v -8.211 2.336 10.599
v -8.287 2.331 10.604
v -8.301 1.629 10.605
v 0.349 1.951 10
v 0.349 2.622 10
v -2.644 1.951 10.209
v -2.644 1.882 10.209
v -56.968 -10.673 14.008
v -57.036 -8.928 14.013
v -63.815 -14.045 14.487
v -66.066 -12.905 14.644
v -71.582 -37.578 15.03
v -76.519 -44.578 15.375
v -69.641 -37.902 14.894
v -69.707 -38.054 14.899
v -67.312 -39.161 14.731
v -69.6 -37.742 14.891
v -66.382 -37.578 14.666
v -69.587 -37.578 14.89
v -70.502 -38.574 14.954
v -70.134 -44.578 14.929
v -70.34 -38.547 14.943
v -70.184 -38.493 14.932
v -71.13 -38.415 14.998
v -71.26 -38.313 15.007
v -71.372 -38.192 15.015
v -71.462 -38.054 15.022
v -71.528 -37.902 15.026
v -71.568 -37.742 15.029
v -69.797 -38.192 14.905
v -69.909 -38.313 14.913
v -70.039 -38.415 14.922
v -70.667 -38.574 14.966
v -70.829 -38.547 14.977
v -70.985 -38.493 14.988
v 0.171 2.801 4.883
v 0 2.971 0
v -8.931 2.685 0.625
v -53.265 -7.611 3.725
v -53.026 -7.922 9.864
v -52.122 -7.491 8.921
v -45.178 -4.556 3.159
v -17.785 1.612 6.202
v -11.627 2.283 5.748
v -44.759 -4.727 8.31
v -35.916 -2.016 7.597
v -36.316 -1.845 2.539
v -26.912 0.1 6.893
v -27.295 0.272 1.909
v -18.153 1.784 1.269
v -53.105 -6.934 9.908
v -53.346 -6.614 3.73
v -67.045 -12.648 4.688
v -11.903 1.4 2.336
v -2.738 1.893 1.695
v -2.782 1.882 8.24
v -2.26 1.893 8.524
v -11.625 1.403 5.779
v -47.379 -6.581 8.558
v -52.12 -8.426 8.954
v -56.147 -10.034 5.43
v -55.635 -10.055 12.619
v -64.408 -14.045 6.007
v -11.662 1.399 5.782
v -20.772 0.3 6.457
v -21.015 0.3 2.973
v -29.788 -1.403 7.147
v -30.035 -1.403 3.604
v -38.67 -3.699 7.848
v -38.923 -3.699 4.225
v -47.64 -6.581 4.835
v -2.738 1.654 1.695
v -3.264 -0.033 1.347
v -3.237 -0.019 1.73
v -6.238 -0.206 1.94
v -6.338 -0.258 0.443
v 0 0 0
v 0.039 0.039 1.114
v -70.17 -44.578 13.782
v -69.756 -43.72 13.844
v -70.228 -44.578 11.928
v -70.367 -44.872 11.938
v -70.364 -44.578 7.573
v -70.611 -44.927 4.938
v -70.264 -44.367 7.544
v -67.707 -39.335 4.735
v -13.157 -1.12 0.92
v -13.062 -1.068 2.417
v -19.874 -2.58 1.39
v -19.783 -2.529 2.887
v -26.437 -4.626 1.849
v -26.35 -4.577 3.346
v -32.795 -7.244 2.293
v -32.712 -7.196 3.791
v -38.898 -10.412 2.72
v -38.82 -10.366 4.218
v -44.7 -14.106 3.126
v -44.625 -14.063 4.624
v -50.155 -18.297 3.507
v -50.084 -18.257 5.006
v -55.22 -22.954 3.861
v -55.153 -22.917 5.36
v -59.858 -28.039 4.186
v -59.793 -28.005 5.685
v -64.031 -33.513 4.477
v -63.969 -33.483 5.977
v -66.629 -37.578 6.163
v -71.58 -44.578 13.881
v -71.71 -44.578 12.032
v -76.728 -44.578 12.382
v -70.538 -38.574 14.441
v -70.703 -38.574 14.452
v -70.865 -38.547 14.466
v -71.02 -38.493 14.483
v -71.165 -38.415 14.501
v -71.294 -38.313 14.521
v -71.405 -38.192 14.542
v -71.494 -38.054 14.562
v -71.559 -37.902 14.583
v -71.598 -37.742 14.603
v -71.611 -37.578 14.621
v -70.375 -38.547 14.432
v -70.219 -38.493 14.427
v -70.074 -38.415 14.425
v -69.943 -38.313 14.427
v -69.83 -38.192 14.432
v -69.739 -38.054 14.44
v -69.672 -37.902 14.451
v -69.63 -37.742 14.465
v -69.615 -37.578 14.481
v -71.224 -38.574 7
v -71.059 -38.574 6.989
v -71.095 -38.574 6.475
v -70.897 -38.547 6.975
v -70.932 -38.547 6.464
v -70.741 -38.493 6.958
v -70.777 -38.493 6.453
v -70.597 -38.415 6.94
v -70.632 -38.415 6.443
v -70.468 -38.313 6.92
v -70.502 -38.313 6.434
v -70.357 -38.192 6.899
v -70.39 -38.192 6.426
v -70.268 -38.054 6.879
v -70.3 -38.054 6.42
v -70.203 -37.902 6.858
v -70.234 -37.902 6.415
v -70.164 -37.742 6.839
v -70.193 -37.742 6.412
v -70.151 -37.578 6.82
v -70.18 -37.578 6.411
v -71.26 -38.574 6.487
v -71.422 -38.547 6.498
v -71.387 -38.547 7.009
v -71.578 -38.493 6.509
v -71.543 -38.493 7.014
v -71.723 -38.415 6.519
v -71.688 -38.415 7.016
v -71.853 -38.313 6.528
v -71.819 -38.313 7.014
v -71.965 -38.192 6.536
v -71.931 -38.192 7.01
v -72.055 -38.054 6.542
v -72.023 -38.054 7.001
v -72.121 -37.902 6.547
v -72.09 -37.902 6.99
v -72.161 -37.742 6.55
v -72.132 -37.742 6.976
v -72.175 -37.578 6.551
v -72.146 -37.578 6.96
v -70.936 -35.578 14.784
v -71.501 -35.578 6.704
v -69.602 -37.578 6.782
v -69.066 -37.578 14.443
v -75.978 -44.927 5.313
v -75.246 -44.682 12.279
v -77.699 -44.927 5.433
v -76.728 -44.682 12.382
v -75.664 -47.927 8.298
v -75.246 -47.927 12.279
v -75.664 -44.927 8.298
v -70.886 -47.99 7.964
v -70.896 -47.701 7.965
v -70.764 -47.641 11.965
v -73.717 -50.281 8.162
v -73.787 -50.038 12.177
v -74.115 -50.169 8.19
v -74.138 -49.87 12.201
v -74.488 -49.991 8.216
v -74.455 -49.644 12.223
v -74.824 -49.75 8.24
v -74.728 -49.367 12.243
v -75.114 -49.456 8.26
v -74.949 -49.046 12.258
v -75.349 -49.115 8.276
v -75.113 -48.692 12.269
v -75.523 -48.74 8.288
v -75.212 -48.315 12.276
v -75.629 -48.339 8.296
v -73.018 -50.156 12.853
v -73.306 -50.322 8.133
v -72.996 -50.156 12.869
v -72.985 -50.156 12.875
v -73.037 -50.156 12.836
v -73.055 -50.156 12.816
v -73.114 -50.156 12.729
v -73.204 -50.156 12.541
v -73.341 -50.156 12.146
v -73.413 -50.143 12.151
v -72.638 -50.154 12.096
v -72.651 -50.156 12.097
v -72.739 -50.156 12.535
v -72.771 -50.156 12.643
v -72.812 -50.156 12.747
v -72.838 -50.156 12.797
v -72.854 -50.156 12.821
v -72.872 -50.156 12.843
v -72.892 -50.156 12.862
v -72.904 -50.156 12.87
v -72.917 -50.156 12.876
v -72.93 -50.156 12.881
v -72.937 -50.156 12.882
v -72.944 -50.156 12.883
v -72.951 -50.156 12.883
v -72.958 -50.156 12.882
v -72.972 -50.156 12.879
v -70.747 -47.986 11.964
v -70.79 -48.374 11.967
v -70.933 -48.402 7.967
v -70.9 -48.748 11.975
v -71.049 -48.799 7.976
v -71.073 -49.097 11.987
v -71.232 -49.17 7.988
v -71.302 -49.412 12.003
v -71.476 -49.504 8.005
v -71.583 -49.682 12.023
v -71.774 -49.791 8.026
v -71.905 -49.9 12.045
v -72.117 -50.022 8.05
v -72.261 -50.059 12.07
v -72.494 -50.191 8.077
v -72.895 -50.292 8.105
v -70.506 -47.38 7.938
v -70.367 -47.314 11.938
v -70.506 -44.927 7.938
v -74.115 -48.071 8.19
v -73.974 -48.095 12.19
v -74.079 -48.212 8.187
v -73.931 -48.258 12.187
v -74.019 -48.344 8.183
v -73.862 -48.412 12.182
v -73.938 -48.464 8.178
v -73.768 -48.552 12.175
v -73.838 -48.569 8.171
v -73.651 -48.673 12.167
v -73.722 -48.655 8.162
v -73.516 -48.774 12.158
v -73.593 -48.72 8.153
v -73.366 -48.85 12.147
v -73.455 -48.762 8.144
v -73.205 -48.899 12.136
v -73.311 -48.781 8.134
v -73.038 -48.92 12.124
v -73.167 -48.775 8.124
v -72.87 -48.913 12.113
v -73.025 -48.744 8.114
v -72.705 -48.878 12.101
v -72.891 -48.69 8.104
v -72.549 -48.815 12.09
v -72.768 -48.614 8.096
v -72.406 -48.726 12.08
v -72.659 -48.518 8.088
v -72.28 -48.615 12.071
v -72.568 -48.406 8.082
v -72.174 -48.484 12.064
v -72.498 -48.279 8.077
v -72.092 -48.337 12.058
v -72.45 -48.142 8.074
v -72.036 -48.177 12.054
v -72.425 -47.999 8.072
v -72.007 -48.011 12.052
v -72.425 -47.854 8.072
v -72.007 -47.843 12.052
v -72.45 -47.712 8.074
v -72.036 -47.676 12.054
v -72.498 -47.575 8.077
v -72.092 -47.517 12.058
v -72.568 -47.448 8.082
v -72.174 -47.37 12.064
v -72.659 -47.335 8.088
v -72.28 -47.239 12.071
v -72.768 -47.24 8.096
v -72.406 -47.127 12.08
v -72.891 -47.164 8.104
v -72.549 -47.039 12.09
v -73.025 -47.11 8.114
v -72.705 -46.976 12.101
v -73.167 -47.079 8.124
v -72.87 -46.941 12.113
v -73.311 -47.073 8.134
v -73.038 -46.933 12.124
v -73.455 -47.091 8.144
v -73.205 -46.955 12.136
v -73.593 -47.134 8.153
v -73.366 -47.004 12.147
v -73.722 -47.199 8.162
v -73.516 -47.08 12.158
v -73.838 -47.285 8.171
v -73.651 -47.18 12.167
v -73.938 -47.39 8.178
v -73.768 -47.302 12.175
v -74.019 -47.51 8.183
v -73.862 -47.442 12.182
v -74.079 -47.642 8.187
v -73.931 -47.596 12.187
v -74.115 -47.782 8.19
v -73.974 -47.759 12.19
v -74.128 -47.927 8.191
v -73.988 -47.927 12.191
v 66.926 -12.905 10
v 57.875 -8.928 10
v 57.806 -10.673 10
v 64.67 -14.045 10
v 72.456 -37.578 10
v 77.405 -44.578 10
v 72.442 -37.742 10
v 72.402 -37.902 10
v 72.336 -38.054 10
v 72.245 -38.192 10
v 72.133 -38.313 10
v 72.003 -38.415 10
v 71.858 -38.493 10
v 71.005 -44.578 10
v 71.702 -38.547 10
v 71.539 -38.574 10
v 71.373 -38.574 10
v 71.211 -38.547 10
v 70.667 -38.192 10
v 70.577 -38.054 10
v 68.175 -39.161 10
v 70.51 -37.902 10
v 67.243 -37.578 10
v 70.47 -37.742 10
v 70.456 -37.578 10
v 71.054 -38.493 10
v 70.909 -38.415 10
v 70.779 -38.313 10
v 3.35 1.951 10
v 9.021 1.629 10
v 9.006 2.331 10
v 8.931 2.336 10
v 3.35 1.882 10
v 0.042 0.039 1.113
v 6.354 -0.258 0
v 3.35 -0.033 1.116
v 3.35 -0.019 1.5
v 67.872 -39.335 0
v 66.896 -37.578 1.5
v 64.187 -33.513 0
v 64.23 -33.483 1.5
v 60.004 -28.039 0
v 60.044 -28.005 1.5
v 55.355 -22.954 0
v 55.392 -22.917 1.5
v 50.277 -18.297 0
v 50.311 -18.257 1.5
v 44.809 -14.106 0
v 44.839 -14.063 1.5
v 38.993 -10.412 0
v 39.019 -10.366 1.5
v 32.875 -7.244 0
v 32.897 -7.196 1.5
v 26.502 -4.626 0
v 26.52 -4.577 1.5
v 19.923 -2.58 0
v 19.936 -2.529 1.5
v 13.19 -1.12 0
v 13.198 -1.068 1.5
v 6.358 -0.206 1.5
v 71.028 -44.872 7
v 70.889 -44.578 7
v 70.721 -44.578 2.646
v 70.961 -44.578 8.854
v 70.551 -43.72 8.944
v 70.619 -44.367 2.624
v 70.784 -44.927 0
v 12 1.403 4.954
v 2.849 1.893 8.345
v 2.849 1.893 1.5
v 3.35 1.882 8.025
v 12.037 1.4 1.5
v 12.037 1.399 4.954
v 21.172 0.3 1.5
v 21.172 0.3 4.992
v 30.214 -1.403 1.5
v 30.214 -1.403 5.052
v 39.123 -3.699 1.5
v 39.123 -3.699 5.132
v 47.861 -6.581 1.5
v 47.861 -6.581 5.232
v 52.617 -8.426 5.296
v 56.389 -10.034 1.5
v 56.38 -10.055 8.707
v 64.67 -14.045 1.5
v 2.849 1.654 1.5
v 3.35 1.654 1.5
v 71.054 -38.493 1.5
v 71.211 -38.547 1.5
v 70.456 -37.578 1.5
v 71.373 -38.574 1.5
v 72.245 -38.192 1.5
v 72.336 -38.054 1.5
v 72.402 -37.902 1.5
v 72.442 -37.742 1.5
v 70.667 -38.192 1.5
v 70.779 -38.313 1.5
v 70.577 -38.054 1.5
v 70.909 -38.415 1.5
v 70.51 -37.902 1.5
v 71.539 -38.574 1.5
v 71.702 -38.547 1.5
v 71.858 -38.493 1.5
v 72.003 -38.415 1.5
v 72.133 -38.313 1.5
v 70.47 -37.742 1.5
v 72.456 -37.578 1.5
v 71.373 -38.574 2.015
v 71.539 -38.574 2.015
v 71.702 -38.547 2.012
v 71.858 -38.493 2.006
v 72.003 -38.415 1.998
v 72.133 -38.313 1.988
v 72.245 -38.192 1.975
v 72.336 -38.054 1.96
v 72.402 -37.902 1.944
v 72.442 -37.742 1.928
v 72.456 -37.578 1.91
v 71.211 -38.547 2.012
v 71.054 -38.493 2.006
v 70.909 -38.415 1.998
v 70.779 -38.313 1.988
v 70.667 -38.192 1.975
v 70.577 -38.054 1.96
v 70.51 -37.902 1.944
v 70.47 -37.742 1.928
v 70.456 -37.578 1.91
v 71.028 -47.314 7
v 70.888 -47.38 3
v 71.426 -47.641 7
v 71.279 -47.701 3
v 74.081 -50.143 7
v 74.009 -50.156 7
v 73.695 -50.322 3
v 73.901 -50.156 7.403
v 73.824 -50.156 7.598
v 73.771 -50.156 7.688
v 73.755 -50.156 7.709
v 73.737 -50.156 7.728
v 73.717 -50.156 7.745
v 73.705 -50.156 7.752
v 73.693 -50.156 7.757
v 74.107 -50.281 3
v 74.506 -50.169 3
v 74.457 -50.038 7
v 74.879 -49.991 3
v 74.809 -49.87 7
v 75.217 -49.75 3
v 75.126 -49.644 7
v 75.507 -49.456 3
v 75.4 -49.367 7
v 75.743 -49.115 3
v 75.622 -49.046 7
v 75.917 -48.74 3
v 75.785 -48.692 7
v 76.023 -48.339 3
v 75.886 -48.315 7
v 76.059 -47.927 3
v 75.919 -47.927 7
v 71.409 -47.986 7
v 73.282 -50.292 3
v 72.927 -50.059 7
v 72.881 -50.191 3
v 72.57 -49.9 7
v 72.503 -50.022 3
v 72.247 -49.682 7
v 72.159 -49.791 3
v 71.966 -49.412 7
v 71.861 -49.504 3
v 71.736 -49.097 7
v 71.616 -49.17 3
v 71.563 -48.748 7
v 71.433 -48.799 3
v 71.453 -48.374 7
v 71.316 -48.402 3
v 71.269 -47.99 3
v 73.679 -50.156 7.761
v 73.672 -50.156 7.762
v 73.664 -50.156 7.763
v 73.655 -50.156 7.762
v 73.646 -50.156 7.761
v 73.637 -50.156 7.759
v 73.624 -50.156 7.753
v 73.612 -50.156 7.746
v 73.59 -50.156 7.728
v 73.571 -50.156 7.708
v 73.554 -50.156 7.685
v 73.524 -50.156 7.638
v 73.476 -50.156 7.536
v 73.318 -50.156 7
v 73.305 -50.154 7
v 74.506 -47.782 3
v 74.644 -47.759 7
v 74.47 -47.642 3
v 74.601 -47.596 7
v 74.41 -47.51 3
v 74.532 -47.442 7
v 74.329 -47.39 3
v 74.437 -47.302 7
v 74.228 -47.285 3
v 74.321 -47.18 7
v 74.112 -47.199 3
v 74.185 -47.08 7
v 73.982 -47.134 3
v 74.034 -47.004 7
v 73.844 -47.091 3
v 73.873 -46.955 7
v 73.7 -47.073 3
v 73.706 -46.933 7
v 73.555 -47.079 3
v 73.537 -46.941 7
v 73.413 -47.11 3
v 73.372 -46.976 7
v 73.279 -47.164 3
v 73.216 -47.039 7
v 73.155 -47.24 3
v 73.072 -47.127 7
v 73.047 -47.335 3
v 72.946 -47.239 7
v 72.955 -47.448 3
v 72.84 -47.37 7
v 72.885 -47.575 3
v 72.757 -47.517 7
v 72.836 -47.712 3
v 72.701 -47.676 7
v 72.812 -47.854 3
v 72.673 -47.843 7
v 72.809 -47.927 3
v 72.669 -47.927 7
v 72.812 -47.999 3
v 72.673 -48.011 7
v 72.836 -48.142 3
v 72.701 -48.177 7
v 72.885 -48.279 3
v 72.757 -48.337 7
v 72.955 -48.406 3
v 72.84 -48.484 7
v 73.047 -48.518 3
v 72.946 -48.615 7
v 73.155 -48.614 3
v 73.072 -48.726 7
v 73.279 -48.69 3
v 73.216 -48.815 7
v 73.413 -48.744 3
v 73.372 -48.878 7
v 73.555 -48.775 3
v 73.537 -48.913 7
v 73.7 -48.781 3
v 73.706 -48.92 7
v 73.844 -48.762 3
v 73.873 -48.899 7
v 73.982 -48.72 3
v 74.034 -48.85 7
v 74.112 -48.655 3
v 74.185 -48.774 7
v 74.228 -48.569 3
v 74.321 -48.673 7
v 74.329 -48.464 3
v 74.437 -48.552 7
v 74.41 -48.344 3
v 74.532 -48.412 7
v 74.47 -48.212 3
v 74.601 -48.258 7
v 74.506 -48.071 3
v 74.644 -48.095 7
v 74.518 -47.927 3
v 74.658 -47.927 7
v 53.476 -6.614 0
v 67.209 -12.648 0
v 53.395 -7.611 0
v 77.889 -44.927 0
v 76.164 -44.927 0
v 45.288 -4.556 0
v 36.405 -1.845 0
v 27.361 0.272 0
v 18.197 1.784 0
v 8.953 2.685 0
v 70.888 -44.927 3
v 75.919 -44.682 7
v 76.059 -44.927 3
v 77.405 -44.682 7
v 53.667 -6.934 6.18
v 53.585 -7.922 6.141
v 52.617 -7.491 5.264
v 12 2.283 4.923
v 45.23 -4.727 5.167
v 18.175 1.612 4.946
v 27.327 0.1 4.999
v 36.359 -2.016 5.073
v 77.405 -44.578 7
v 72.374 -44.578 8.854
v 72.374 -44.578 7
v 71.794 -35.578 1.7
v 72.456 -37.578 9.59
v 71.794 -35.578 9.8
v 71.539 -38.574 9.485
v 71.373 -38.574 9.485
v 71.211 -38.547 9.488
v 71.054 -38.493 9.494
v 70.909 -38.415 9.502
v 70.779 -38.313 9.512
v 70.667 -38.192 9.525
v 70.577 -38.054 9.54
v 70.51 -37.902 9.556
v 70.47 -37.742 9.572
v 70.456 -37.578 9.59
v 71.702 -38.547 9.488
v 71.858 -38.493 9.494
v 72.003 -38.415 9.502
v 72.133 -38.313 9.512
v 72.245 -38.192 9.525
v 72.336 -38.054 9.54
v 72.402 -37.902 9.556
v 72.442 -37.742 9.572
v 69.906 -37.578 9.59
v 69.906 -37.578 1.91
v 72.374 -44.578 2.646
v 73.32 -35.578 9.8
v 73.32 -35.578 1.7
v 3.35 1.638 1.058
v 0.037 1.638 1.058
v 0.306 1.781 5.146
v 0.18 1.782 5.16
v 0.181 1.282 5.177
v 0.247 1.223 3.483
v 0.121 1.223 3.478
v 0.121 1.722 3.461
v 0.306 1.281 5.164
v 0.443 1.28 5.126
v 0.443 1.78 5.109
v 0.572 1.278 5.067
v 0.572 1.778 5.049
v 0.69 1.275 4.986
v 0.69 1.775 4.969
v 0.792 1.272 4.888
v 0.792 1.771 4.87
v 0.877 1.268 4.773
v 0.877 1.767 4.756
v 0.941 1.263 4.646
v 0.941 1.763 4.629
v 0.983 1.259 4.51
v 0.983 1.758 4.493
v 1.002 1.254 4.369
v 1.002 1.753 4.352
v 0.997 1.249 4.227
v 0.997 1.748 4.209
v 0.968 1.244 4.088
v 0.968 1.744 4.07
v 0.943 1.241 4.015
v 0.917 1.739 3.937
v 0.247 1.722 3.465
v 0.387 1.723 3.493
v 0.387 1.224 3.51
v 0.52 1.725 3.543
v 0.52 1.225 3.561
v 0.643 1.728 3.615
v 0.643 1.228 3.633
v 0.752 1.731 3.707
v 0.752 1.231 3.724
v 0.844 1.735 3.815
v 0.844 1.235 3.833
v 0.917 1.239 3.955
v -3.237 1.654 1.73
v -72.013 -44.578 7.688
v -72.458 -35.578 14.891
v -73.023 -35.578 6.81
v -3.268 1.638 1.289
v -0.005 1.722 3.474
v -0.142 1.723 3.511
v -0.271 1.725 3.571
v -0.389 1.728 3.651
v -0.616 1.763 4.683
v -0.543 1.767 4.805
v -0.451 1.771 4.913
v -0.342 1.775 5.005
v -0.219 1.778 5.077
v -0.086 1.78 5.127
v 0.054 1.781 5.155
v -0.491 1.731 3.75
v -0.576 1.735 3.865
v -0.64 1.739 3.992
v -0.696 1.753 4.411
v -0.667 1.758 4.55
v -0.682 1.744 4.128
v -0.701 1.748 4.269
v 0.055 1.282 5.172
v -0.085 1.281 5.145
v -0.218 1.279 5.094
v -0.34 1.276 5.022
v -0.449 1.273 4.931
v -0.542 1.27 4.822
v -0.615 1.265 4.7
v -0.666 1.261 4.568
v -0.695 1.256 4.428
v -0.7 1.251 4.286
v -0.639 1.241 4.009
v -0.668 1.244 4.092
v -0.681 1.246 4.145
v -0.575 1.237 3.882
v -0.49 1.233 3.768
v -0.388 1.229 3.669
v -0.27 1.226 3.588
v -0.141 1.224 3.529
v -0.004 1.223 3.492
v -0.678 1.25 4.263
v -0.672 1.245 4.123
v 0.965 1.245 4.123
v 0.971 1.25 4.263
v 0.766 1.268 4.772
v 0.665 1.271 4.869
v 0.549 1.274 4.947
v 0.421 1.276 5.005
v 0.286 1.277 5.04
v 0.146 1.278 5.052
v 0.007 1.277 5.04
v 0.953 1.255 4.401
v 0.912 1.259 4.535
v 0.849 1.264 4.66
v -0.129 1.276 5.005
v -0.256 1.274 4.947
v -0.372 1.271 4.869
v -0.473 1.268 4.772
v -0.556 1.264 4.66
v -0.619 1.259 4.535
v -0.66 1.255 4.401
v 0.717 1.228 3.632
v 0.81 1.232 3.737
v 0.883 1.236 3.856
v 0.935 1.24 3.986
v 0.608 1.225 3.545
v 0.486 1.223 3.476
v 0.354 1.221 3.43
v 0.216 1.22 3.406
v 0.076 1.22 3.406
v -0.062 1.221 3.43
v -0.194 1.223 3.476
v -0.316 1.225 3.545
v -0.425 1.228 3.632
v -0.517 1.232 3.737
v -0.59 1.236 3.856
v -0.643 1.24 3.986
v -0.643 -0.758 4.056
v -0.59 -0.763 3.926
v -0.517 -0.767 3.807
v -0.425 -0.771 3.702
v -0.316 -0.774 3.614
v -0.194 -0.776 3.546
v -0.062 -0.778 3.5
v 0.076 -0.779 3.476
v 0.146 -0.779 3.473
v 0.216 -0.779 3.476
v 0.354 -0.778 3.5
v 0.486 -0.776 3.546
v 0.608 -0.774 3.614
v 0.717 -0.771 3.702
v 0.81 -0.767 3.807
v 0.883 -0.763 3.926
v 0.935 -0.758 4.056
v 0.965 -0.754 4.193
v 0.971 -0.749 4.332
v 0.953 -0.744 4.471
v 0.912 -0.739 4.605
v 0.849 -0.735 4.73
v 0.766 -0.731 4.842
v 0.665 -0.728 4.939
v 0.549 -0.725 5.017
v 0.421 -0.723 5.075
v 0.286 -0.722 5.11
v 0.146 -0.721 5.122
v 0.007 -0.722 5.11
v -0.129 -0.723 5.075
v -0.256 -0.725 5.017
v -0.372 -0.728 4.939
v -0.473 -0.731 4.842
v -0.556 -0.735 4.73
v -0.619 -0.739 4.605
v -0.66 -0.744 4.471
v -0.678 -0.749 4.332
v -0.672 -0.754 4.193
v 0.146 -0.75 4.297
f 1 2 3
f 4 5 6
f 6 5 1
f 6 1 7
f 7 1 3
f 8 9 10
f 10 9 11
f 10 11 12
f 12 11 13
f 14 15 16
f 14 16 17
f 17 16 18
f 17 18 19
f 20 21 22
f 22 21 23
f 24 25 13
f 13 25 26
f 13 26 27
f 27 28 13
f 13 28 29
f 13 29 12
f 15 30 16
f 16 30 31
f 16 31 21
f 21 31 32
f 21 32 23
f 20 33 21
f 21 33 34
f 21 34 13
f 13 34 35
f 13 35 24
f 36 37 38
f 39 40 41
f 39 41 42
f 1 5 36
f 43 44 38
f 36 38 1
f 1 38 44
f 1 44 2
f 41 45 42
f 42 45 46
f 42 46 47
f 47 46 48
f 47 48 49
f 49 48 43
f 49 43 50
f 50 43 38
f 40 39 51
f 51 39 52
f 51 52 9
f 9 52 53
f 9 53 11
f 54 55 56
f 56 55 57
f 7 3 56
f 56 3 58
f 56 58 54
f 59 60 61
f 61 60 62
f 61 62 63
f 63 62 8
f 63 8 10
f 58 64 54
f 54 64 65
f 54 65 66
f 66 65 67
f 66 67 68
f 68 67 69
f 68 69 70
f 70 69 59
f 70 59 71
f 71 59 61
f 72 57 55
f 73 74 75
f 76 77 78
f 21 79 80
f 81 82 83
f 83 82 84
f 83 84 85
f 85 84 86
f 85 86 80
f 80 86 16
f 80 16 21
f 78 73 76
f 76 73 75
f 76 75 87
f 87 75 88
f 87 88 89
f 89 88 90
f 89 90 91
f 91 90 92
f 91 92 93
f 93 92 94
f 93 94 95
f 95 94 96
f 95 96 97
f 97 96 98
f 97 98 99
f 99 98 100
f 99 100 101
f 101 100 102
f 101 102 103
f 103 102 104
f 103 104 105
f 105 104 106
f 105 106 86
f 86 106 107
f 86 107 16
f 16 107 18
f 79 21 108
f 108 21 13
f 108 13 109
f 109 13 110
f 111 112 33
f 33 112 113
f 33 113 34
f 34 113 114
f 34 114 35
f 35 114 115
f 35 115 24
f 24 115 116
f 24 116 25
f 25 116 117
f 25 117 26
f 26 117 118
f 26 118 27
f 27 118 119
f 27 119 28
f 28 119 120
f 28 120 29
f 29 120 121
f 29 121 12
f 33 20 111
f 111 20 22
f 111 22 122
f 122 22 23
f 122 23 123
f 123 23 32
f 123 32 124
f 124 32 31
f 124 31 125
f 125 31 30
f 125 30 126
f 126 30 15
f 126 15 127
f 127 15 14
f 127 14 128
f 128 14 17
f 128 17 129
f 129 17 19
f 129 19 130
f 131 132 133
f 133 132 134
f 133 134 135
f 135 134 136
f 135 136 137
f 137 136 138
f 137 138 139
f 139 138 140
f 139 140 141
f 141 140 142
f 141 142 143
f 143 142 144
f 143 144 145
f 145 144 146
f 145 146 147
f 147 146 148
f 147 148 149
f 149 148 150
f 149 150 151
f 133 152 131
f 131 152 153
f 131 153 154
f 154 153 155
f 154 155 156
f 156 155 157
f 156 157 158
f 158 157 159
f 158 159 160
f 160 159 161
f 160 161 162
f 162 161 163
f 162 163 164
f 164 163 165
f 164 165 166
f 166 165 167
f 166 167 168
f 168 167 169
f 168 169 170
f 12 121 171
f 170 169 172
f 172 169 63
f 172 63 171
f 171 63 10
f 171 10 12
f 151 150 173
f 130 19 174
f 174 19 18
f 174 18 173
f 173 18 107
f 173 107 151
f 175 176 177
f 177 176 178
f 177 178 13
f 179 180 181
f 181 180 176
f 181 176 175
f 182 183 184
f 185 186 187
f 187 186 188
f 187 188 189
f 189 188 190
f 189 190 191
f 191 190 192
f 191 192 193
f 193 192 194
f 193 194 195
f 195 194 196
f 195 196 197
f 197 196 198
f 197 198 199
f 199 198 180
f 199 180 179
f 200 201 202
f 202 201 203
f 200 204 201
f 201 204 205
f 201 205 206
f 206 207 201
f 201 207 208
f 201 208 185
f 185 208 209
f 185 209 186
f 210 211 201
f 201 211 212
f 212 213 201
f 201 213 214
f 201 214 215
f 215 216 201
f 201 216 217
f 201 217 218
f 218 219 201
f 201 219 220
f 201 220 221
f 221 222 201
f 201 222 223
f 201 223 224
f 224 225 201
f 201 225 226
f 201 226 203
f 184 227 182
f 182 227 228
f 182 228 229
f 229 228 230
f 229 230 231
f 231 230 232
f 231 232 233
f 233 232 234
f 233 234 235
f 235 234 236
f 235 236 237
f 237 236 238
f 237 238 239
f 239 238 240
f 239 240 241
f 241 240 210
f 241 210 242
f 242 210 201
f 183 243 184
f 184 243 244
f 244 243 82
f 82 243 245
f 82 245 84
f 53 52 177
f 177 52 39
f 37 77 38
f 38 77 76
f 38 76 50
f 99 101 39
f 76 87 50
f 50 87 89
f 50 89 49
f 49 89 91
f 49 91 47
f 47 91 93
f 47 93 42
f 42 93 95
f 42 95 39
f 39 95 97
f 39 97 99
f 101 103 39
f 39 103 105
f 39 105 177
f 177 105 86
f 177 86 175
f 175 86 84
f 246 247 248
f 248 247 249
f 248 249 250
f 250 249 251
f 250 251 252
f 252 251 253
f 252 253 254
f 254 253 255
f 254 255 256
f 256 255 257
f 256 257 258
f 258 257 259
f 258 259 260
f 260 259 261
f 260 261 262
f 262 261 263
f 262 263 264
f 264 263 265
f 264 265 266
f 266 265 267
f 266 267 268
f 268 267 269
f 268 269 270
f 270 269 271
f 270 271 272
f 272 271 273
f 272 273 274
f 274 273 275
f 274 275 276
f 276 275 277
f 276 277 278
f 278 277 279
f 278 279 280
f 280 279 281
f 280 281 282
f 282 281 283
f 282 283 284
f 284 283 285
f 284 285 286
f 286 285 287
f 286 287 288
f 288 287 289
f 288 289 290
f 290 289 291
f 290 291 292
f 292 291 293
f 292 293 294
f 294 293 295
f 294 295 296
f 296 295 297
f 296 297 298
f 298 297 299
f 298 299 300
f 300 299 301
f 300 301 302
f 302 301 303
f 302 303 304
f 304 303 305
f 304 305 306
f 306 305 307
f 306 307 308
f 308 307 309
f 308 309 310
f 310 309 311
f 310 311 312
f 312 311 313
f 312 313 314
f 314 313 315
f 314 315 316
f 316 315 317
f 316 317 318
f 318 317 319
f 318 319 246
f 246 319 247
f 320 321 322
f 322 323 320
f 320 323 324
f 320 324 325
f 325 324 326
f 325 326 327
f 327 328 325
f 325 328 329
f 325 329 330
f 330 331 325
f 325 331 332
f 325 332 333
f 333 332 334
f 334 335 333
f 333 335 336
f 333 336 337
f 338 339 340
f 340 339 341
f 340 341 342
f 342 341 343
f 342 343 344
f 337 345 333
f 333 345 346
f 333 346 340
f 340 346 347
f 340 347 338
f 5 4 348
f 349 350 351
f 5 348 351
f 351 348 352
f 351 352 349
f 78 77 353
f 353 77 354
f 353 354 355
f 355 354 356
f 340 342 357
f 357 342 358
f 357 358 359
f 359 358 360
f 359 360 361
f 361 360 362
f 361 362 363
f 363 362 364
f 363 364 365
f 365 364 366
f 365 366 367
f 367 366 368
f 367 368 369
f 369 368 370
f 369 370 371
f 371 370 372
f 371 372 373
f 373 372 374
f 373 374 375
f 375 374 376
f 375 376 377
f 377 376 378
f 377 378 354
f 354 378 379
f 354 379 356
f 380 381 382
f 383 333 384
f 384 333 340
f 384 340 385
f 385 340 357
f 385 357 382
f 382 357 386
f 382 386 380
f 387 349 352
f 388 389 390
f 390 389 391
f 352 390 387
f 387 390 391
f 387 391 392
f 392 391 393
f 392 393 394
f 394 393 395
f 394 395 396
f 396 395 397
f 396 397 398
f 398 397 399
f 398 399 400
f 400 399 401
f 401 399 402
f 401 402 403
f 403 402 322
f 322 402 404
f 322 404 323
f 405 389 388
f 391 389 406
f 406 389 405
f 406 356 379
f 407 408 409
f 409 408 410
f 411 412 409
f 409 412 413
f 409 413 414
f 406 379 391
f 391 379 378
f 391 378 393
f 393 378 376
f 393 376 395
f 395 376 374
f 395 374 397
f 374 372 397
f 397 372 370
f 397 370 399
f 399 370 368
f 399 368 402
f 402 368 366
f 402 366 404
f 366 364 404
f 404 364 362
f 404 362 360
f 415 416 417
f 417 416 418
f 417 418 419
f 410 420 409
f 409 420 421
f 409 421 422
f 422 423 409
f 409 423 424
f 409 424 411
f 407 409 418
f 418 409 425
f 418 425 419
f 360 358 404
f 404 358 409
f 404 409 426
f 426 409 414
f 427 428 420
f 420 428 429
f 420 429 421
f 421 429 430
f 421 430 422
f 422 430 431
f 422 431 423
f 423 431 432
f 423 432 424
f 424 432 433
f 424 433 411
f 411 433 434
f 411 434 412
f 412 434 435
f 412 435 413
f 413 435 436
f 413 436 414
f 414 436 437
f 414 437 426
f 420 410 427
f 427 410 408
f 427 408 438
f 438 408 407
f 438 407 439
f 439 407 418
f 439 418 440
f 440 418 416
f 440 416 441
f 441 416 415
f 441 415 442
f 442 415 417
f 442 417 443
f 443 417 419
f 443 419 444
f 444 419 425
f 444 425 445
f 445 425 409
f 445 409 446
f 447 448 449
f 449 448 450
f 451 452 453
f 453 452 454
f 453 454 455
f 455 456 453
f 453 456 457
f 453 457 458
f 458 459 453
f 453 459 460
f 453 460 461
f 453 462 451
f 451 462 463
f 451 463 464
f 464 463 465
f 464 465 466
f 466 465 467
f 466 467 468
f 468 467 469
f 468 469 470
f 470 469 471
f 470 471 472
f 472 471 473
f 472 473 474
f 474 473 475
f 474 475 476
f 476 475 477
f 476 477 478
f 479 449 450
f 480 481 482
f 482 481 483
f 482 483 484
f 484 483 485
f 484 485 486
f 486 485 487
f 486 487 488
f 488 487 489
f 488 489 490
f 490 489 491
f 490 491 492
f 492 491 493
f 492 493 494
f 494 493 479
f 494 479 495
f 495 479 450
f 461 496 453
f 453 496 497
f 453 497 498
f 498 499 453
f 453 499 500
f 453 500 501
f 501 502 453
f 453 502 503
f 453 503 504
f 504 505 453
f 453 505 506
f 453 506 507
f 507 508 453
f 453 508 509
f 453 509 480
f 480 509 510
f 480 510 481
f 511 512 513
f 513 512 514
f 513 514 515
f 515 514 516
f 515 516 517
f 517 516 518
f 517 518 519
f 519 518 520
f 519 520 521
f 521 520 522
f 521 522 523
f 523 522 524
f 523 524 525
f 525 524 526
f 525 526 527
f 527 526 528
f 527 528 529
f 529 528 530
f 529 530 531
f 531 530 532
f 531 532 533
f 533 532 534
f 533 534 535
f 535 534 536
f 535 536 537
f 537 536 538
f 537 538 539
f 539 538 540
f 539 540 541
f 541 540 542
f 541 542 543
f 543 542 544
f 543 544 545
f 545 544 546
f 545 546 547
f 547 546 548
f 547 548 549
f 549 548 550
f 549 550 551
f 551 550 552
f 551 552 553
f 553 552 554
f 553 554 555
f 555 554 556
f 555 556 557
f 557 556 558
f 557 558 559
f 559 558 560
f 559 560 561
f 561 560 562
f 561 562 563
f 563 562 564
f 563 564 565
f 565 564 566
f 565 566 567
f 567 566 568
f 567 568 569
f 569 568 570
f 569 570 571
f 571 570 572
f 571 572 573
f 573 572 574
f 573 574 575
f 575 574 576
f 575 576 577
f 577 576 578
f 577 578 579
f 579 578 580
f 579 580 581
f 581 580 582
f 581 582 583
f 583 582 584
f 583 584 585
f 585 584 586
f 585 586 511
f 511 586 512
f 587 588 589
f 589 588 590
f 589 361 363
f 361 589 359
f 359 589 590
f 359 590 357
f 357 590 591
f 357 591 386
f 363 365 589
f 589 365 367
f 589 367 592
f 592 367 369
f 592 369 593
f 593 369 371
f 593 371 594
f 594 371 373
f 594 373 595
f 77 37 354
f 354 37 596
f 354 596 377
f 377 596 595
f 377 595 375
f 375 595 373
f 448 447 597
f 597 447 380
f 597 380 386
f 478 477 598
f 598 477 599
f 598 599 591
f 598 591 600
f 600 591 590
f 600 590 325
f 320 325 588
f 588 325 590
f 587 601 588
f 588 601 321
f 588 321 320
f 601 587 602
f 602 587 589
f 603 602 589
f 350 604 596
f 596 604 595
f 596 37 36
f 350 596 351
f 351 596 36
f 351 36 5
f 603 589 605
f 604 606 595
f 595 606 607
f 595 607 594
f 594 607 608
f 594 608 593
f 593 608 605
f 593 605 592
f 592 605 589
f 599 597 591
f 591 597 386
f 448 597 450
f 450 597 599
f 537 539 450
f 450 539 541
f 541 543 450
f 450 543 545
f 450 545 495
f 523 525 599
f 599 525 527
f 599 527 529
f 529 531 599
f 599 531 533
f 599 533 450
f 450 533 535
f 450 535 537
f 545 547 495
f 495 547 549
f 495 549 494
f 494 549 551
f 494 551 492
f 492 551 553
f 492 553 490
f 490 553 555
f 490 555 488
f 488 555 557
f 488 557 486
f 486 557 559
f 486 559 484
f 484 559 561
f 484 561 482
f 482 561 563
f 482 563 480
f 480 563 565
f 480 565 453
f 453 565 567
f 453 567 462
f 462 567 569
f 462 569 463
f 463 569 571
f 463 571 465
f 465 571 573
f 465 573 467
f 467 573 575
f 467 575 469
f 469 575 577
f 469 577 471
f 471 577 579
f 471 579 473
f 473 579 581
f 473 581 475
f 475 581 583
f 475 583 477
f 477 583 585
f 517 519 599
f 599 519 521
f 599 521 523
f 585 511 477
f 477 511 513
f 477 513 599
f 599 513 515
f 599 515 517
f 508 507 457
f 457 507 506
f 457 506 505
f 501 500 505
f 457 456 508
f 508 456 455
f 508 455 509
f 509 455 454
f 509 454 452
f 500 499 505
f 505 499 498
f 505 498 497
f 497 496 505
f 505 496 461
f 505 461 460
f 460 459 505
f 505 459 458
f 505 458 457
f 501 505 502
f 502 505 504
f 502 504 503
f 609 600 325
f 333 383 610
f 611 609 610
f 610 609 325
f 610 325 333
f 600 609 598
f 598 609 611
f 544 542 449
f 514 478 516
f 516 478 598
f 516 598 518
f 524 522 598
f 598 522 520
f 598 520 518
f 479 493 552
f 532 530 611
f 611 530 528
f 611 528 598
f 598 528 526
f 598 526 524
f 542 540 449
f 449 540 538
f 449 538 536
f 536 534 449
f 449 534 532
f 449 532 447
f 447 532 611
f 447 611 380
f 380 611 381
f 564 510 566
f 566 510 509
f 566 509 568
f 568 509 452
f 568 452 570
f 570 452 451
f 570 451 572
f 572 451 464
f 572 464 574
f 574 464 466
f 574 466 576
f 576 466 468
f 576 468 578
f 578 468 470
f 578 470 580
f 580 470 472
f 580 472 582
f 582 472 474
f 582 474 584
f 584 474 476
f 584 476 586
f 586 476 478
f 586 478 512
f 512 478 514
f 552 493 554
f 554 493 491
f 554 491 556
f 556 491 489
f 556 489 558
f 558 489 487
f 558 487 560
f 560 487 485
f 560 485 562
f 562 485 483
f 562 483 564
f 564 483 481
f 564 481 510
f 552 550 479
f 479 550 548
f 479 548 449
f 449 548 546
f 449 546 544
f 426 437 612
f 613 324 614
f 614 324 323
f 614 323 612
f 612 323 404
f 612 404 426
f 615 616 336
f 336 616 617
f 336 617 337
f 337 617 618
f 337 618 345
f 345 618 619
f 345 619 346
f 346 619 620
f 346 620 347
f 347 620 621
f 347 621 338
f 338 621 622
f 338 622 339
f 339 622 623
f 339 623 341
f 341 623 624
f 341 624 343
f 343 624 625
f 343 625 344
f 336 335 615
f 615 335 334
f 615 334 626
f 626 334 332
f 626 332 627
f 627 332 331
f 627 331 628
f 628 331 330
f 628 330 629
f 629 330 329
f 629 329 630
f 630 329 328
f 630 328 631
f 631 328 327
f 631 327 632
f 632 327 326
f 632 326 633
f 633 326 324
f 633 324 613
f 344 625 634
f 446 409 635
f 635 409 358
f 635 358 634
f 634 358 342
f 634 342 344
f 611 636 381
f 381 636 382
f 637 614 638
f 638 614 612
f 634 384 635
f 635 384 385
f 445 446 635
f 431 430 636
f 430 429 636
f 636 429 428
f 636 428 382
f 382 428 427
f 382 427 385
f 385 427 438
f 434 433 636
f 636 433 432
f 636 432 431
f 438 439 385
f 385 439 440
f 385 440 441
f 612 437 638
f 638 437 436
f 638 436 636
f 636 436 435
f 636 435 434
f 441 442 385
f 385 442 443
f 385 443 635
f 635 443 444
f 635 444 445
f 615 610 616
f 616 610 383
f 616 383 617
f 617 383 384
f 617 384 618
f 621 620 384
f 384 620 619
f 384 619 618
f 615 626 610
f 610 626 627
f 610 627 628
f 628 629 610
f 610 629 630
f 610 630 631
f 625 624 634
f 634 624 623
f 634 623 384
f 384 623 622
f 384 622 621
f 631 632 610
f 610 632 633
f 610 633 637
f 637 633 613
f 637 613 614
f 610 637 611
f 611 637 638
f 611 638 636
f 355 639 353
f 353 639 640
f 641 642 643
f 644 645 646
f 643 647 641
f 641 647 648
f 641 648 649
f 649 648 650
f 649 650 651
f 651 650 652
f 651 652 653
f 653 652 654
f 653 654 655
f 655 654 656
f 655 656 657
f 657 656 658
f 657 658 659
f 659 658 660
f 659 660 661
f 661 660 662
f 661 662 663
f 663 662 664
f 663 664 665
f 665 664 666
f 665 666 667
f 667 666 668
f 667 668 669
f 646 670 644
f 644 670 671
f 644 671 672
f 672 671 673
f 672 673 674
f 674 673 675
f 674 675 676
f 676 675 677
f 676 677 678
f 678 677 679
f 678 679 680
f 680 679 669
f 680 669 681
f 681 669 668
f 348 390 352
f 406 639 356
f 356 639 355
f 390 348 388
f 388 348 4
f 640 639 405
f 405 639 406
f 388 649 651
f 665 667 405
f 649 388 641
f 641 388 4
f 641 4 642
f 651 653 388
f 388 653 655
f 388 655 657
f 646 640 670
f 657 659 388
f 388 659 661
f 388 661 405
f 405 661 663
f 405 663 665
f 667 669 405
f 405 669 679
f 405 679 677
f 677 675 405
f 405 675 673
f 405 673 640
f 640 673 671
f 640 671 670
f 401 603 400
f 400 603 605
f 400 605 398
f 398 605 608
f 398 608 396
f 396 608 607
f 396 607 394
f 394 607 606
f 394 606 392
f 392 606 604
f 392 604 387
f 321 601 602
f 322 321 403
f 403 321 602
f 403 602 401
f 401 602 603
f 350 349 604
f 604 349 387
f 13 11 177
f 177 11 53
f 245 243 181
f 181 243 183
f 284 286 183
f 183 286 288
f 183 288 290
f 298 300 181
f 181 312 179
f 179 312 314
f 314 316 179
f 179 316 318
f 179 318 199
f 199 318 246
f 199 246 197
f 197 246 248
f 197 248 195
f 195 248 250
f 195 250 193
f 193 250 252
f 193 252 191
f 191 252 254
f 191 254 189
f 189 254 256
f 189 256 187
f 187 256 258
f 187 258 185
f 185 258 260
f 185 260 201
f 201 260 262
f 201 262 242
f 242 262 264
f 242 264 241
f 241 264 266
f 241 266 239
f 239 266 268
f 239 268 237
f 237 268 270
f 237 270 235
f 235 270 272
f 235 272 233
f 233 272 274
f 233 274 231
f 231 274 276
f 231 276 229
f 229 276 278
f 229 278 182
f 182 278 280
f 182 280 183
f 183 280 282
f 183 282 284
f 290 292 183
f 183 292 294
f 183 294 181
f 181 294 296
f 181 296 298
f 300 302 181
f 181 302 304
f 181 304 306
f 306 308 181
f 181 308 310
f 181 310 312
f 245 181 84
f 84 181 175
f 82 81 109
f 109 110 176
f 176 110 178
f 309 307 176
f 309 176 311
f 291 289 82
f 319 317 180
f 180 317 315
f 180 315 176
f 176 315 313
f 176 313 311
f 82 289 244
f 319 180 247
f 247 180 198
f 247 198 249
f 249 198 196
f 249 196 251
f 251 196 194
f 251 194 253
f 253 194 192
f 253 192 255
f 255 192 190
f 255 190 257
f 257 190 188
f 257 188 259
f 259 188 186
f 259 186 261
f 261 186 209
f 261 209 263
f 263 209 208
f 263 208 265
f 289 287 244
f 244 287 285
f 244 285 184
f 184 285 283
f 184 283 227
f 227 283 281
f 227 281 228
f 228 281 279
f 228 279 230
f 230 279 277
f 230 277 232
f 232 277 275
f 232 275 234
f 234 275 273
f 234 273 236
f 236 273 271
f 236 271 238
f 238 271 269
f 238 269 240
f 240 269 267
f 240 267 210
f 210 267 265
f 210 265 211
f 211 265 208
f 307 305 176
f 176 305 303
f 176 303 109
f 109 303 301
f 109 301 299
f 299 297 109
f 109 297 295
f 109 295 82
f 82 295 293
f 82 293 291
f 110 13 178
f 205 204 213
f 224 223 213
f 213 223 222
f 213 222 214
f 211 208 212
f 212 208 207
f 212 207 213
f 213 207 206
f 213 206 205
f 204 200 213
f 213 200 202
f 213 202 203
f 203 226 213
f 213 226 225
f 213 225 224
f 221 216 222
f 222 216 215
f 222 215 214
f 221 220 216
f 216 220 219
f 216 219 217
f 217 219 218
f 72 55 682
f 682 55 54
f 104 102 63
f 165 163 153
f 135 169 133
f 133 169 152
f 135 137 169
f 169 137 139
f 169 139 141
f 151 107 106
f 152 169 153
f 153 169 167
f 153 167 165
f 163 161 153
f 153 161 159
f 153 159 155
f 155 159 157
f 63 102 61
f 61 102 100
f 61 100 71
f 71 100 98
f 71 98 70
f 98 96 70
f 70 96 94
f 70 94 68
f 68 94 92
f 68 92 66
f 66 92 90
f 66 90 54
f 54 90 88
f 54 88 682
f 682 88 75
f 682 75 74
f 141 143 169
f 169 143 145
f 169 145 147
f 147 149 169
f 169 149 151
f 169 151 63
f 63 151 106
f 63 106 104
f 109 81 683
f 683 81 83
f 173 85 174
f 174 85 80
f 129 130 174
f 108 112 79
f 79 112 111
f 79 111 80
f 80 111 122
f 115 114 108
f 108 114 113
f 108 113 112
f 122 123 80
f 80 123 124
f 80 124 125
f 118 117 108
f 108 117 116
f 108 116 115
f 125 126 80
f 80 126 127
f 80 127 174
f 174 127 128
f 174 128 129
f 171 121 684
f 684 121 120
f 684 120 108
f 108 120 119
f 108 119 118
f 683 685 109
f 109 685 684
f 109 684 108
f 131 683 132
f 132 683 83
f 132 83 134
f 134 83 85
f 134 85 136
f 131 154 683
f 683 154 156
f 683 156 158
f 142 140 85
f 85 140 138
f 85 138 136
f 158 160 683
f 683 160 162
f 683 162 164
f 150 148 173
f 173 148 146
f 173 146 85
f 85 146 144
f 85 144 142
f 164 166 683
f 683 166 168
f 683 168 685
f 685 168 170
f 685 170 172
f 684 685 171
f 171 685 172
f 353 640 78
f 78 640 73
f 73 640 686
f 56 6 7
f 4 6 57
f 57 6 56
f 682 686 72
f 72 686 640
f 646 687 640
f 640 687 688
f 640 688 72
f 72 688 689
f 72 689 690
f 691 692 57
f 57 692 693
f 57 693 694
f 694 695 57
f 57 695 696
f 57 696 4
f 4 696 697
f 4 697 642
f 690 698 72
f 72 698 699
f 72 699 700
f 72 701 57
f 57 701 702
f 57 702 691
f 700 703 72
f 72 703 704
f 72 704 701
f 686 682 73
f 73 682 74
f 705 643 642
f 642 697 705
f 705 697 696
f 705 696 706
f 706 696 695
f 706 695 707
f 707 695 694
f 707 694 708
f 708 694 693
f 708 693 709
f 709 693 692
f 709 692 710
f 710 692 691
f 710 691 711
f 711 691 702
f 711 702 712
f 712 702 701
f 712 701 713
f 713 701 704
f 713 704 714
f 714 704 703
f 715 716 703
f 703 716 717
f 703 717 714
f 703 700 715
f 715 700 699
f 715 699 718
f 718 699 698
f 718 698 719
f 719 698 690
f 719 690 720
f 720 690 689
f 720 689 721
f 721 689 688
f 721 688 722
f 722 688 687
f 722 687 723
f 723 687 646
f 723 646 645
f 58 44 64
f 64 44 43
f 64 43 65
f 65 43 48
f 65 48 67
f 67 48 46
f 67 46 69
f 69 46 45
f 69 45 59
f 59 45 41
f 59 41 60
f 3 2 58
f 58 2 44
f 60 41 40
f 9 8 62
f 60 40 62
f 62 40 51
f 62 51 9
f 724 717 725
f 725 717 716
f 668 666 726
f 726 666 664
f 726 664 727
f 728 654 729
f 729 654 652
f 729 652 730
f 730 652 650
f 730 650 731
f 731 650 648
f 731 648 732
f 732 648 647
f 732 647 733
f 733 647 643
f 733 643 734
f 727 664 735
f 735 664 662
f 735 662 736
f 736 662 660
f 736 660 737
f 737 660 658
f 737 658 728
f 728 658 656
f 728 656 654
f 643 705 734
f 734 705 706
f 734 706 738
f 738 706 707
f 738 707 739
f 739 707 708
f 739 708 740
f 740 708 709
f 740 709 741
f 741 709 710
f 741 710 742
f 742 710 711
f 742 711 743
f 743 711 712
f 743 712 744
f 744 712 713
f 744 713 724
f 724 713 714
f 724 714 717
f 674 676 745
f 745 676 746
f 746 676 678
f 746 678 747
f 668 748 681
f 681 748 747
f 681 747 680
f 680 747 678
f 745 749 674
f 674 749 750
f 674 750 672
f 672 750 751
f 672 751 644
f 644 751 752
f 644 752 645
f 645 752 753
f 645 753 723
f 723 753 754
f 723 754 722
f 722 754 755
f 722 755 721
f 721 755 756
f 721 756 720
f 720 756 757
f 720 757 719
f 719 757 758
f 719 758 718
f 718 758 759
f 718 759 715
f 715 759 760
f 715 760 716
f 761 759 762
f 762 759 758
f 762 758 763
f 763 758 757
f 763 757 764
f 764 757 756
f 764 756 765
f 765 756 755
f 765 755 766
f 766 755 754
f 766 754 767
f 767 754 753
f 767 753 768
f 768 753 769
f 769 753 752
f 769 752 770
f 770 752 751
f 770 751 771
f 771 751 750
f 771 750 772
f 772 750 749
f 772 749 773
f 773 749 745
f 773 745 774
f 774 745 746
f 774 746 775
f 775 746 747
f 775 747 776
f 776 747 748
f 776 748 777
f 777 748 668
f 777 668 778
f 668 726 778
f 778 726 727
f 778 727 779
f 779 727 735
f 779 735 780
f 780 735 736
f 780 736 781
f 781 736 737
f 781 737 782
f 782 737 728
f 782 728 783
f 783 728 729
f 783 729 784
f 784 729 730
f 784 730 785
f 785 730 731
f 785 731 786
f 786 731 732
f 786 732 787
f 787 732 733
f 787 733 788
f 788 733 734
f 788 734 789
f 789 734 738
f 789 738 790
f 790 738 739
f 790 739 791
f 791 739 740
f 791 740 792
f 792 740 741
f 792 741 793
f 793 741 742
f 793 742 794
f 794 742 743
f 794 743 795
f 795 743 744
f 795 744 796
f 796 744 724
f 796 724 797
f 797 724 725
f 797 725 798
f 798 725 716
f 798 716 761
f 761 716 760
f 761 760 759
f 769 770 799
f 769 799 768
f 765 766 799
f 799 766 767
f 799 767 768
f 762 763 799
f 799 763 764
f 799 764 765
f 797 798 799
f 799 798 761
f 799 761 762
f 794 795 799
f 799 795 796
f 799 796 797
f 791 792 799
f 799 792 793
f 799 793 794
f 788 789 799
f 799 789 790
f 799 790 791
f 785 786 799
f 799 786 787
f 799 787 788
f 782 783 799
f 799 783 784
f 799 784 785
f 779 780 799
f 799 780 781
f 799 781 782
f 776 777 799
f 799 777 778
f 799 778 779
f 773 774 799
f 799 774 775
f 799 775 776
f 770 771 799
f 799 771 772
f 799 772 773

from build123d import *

# Parameters (mm, degrees)
ESQUISSE1_R             = 0.75
BOSS_EXTRU_1_DEPTH      = 10
BOSS_EXTRU_1_DRAFT      = 2
ESQUISSE2_W             = 13.85789223
ESQUISSE2_H             = 8.60111757
ENL_V_MAT_EXTRU_1_DEPTH = 13
ESQUISSE5_W             = 12.990785821
ESQUISSE5_H             = 5.57811828
ENL_V_MAT_EXTRU_3_DEPTH = 13
ENL_V_MAT_EXTRU_4_DEPTH = 18.5
ESQUISSE8_W             = 3.624703647
ESQUISSE8_H             = 8.1
ENL_V_MAT_EXTRU_7_DEPTH = 9
ENL_V_MAT_EXTRU_7_DRAFT = -6
ENL_V_MAT_EXTRU_8_DEPTH = 6.5
ENL_V_MAT_EXTRU_6_DEPTH = 24
ESQUISSE12_R            = 1.011324244
ENL_V_MAT_EXTRU_9_DEPTH = 6
ESQUISSE17_R            = 0.825
BOSS_EXTRU_2_DEPTH      = 2


# Read off the part's stored shape, not the designer's step: Symétrie2
with BuildPart() as part:
    # Esquisse1 → Boss.-Extru.1 (with draft: the straight prism first)
    with BuildSketch(Plane.XY):
        with BuildLine():
            Line((77.8887043, -44.926917936), (67.208968034, -12.647772451))
            Line((67.208968034, -12.647772451), (53.475934981, -6.614216024))
            Line((53.475934981, -6.614216024), (53.395110551, -7.610944377))
            ThreePointArc((53.395110551, -7.610944377), (27.216820071, 0.300239401), (0, 2.971274119))
            Line((0, 2.971274119), (0, 0))
            ThreePointArc((0, 0), (41.918820025, -12.179976378), (70.783627584, -44.926917936))
            Line((70.783627584, -44.926917936), (70.783627584, -47.429888392))
            Line((70.783627584, -47.429888392), (71.170117615, -47.747103549))
            ThreePointArc((71.170117615, -47.747103549), (73.573677122, -50.425298655), (76.163642587, -47.926917936))
            Line((76.163642587, -47.926917936), (76.163642587, -44.926917936))
            Line((76.163642587, -44.926917936), (77.8887043, -44.926917936))
        make_face()
        with Locations((73.663642587, -47.926917936)):
            Circle(ESQUISSE1_R, mode=Mode.SUBTRACT)
    extrude(amount=BOSS_EXTRU_1_DEPTH)
    # Boss.-Extru.1: the draft: its side faces are tilted about the plane it starts from
    boss_extru_1_sides = [part.faces().sort_by_distance(p)[0] for p in [
        (72.548836167, -28.787345194, 5),
        (60.342451508, -9.630994237, 5),
        (53.435522766, -7.1125802, 5),
        (27.216820071, 0.300239401, 5),
        (0, 1.48563706, 5),
        (41.918820025, -12.179976378, 5),
        (70.783627584, -46.178403164, 5),
        (70.9768726, -47.588495971, 5),
        (73.573677122, -50.425298655, 5),
        (76.163642587, -46.426917936, 5),
        (77.026173444, -44.926917936, 5),
        (72.913642587, -47.926917936, 5),
    ]]
    draft(boss_extru_1_sides, Plane.XY, BOSS_EXTRU_1_DRAFT)

    # Esquisse2 → Enlèv. mat.-Extru.1 (cut)
    with BuildSketch(Plane(origin=(0, 0, -10), x_dir=(-1, 0, 0), z_dir=(0, 0, -1))):
        with Locations((-70.959758185, -49.227476721)):
            Rectangle(ESQUISSE2_W, ESQUISSE2_H)
    extrude(amount=-ENL_V_MAT_EXTRU_1_DEPTH, mode=Mode.SUBTRACT)

    # Esquisse5 → Enlèv. mat.-Extru.3 (cut)
    with BuildSketch(Plane.XY.offset(20)):
        with Locations((70.909949533, -47.366769381)):
            Rectangle(ESQUISSE5_W, ESQUISSE5_H)
    extrude(amount=-ENL_V_MAT_EXTRU_3_DEPTH, mode=Mode.SUBTRACT)

    # Esquisse6 → Enlèv. mat.-Extru.4 (cut)
    with BuildSketch(Plane.XY.offset(20)):
        with BuildLine():
            Line((64.669985027, -14.044516655), (72.45607407, -37.577710241))
            ThreePointArc((72.45607407, -37.577710241), (71.45607407, -38.577710241), (70.45607407, -37.577710241))
            Line((70.45607407, -37.577710241), (2.849207695, -37.577710241))
            Line((2.849207695, -37.577710241), (2.849207695, 1.892851629))
            ThreePointArc((2.849207695, 1.892851629), (34.687321508, -2.477202631), (64.669985027, -14.044516655))
        make_face()
    extrude(amount=-ENL_V_MAT_EXTRU_4_DEPTH, mode=Mode.SUBTRACT)


with BuildPart() as enl_v_mat_extru_7_tool:
    # Esquisse8 → Enlèv. mat.-Extru.7 (with draft: the straight prism first)
    with BuildSketch(Plane(origin=(0, -35.577710241, 0), x_dir=(1, 0, 0), z_dir=(0, 1, 0))):
        with Locations((71.507795019, -5.75)):
            Rectangle(ESQUISSE8_W, ESQUISSE8_H)
    extrude(amount=-ENL_V_MAT_EXTRU_7_DEPTH)
    # Enlèv. mat.-Extru.7: the draft: its side faces are tilted about the plane it starts from
    enl_v_mat_extru_7_sides = [enl_v_mat_extru_7_tool.faces().sort_by_distance(p)[0] for p in [
        (69.695443195, -40.077710241, 5.75),
        (71.507795019, -40.077710241, 9.8),
        (73.320146842, -40.077710241, 5.75),
        (71.507795019, -40.077710241, 1.7),
    ]]
    draft(enl_v_mat_extru_7_sides, Plane(origin=(0, -35.577710241, 0), x_dir=(1, 0, 0), z_dir=(0, 1, 0)), ENL_V_MAT_EXTRU_7_DRAFT)


with BuildPart() as part_1:
    add(part.part)

    # Enlèv. mat.-Extru.7: cut by enl_v_mat_extru_7_tool
    add(enl_v_mat_extru_7_tool.part, mode=Mode.SUBTRACT)

    # Esquisse9 → Enlèv. mat.-Extru.8 (cut)
    with BuildSketch(Plane(origin=(0, -4.896564999, 0.170991818), x_dir=(0.9999999998537095, -5.969561417335715e-07, -1.7094587273474584e-05), z_dir=(0, 0.9993908270190958, -0.03489949670250105))):
        with BuildLine():
            Line((3.349657801, -1.114368939), (0.03533908, -1.114368939))
            Line((0.03533908, -1.114368939), (0.119413388, -3.518714663))
            ThreePointArc((0.119413388, -3.518714663), (1.002393791, -4.338878244), (0.178858385, -5.218714663))
            Line((0.178858385, -5.218714663), (0.349657801, -10.103213324))
            Line((0.349657801, -10.103213324), (3.349657801, -10.111959186))
            Line((3.349657801, -10.111959186), (3.349657801, -1.114368939))
        make_face()
    extrude(amount=ENL_V_MAT_EXTRU_8_DEPTH, mode=Mode.SUBTRACT)

    # Esquisse7 → Enlèv. mat.-Extru.6 (cut)
    with BuildSketch(Plane(origin=(0, 5.097343272, -0.178003149), x_dir=(0.9999999998537095, -5.969561417335715e-07, -1.7094587273474584e-05), z_dir=(0, 0.9993908270190958, -0.03489949670250105))):
        Polygon((12, -5.000000781), (9, -10.085416779), (58.325804645, -10.085411957), (52.617108891, -5.000000781), align=None)
    extrude(amount=-ENL_V_MAT_EXTRU_6_DEPTH, mode=Mode.SUBTRACT)

    # Symétrie2: part across plane


with BuildPart() as part_2:
    add(part_1.part)
    add(part_1.part.mirror(Plane(origin=(0, 0, 0), x_dir=(0.034899496702501046, 0, 0.9993908270190957), z_dir=(-0.9993908270190958, 0, 0.034899496702501046))))

    # Esquisse12 → Enlèv. mat.-Extru.9 (cut)
    with BuildSketch(Plane(origin=(0, -4.896564999, 0.170991818), x_dir=(0.9999999998537095, -5.969561417335715e-07, -1.7094587273474584e-05), z_dir=(0, 0.9993908270190958, -0.03489949670250105))):
        with Locations((0.159665326, -4.247929052)):
            Circle(ESQUISSE12_R)
    extrude(amount=ENL_V_MAT_EXTRU_9_DEPTH, mode=Mode.SUBTRACT)

    # Esquisse17 → Boss.-Extru.2 (add)
    with BuildSketch(Plane(origin=(0, 1.099779964, -0.038405163), x_dir=(-1, 0, 0), z_dir=(0, -0.9993908270190958, 0.03489949670250106))):
        with Locations(Location((-0.146292507, -4.268691639, 0), (0, 0, 9.44628294))):
            Circle(ESQUISSE17_R)
    extrude(amount=BOSS_EXTRU_2_DEPTH)


solid = part_2.part
